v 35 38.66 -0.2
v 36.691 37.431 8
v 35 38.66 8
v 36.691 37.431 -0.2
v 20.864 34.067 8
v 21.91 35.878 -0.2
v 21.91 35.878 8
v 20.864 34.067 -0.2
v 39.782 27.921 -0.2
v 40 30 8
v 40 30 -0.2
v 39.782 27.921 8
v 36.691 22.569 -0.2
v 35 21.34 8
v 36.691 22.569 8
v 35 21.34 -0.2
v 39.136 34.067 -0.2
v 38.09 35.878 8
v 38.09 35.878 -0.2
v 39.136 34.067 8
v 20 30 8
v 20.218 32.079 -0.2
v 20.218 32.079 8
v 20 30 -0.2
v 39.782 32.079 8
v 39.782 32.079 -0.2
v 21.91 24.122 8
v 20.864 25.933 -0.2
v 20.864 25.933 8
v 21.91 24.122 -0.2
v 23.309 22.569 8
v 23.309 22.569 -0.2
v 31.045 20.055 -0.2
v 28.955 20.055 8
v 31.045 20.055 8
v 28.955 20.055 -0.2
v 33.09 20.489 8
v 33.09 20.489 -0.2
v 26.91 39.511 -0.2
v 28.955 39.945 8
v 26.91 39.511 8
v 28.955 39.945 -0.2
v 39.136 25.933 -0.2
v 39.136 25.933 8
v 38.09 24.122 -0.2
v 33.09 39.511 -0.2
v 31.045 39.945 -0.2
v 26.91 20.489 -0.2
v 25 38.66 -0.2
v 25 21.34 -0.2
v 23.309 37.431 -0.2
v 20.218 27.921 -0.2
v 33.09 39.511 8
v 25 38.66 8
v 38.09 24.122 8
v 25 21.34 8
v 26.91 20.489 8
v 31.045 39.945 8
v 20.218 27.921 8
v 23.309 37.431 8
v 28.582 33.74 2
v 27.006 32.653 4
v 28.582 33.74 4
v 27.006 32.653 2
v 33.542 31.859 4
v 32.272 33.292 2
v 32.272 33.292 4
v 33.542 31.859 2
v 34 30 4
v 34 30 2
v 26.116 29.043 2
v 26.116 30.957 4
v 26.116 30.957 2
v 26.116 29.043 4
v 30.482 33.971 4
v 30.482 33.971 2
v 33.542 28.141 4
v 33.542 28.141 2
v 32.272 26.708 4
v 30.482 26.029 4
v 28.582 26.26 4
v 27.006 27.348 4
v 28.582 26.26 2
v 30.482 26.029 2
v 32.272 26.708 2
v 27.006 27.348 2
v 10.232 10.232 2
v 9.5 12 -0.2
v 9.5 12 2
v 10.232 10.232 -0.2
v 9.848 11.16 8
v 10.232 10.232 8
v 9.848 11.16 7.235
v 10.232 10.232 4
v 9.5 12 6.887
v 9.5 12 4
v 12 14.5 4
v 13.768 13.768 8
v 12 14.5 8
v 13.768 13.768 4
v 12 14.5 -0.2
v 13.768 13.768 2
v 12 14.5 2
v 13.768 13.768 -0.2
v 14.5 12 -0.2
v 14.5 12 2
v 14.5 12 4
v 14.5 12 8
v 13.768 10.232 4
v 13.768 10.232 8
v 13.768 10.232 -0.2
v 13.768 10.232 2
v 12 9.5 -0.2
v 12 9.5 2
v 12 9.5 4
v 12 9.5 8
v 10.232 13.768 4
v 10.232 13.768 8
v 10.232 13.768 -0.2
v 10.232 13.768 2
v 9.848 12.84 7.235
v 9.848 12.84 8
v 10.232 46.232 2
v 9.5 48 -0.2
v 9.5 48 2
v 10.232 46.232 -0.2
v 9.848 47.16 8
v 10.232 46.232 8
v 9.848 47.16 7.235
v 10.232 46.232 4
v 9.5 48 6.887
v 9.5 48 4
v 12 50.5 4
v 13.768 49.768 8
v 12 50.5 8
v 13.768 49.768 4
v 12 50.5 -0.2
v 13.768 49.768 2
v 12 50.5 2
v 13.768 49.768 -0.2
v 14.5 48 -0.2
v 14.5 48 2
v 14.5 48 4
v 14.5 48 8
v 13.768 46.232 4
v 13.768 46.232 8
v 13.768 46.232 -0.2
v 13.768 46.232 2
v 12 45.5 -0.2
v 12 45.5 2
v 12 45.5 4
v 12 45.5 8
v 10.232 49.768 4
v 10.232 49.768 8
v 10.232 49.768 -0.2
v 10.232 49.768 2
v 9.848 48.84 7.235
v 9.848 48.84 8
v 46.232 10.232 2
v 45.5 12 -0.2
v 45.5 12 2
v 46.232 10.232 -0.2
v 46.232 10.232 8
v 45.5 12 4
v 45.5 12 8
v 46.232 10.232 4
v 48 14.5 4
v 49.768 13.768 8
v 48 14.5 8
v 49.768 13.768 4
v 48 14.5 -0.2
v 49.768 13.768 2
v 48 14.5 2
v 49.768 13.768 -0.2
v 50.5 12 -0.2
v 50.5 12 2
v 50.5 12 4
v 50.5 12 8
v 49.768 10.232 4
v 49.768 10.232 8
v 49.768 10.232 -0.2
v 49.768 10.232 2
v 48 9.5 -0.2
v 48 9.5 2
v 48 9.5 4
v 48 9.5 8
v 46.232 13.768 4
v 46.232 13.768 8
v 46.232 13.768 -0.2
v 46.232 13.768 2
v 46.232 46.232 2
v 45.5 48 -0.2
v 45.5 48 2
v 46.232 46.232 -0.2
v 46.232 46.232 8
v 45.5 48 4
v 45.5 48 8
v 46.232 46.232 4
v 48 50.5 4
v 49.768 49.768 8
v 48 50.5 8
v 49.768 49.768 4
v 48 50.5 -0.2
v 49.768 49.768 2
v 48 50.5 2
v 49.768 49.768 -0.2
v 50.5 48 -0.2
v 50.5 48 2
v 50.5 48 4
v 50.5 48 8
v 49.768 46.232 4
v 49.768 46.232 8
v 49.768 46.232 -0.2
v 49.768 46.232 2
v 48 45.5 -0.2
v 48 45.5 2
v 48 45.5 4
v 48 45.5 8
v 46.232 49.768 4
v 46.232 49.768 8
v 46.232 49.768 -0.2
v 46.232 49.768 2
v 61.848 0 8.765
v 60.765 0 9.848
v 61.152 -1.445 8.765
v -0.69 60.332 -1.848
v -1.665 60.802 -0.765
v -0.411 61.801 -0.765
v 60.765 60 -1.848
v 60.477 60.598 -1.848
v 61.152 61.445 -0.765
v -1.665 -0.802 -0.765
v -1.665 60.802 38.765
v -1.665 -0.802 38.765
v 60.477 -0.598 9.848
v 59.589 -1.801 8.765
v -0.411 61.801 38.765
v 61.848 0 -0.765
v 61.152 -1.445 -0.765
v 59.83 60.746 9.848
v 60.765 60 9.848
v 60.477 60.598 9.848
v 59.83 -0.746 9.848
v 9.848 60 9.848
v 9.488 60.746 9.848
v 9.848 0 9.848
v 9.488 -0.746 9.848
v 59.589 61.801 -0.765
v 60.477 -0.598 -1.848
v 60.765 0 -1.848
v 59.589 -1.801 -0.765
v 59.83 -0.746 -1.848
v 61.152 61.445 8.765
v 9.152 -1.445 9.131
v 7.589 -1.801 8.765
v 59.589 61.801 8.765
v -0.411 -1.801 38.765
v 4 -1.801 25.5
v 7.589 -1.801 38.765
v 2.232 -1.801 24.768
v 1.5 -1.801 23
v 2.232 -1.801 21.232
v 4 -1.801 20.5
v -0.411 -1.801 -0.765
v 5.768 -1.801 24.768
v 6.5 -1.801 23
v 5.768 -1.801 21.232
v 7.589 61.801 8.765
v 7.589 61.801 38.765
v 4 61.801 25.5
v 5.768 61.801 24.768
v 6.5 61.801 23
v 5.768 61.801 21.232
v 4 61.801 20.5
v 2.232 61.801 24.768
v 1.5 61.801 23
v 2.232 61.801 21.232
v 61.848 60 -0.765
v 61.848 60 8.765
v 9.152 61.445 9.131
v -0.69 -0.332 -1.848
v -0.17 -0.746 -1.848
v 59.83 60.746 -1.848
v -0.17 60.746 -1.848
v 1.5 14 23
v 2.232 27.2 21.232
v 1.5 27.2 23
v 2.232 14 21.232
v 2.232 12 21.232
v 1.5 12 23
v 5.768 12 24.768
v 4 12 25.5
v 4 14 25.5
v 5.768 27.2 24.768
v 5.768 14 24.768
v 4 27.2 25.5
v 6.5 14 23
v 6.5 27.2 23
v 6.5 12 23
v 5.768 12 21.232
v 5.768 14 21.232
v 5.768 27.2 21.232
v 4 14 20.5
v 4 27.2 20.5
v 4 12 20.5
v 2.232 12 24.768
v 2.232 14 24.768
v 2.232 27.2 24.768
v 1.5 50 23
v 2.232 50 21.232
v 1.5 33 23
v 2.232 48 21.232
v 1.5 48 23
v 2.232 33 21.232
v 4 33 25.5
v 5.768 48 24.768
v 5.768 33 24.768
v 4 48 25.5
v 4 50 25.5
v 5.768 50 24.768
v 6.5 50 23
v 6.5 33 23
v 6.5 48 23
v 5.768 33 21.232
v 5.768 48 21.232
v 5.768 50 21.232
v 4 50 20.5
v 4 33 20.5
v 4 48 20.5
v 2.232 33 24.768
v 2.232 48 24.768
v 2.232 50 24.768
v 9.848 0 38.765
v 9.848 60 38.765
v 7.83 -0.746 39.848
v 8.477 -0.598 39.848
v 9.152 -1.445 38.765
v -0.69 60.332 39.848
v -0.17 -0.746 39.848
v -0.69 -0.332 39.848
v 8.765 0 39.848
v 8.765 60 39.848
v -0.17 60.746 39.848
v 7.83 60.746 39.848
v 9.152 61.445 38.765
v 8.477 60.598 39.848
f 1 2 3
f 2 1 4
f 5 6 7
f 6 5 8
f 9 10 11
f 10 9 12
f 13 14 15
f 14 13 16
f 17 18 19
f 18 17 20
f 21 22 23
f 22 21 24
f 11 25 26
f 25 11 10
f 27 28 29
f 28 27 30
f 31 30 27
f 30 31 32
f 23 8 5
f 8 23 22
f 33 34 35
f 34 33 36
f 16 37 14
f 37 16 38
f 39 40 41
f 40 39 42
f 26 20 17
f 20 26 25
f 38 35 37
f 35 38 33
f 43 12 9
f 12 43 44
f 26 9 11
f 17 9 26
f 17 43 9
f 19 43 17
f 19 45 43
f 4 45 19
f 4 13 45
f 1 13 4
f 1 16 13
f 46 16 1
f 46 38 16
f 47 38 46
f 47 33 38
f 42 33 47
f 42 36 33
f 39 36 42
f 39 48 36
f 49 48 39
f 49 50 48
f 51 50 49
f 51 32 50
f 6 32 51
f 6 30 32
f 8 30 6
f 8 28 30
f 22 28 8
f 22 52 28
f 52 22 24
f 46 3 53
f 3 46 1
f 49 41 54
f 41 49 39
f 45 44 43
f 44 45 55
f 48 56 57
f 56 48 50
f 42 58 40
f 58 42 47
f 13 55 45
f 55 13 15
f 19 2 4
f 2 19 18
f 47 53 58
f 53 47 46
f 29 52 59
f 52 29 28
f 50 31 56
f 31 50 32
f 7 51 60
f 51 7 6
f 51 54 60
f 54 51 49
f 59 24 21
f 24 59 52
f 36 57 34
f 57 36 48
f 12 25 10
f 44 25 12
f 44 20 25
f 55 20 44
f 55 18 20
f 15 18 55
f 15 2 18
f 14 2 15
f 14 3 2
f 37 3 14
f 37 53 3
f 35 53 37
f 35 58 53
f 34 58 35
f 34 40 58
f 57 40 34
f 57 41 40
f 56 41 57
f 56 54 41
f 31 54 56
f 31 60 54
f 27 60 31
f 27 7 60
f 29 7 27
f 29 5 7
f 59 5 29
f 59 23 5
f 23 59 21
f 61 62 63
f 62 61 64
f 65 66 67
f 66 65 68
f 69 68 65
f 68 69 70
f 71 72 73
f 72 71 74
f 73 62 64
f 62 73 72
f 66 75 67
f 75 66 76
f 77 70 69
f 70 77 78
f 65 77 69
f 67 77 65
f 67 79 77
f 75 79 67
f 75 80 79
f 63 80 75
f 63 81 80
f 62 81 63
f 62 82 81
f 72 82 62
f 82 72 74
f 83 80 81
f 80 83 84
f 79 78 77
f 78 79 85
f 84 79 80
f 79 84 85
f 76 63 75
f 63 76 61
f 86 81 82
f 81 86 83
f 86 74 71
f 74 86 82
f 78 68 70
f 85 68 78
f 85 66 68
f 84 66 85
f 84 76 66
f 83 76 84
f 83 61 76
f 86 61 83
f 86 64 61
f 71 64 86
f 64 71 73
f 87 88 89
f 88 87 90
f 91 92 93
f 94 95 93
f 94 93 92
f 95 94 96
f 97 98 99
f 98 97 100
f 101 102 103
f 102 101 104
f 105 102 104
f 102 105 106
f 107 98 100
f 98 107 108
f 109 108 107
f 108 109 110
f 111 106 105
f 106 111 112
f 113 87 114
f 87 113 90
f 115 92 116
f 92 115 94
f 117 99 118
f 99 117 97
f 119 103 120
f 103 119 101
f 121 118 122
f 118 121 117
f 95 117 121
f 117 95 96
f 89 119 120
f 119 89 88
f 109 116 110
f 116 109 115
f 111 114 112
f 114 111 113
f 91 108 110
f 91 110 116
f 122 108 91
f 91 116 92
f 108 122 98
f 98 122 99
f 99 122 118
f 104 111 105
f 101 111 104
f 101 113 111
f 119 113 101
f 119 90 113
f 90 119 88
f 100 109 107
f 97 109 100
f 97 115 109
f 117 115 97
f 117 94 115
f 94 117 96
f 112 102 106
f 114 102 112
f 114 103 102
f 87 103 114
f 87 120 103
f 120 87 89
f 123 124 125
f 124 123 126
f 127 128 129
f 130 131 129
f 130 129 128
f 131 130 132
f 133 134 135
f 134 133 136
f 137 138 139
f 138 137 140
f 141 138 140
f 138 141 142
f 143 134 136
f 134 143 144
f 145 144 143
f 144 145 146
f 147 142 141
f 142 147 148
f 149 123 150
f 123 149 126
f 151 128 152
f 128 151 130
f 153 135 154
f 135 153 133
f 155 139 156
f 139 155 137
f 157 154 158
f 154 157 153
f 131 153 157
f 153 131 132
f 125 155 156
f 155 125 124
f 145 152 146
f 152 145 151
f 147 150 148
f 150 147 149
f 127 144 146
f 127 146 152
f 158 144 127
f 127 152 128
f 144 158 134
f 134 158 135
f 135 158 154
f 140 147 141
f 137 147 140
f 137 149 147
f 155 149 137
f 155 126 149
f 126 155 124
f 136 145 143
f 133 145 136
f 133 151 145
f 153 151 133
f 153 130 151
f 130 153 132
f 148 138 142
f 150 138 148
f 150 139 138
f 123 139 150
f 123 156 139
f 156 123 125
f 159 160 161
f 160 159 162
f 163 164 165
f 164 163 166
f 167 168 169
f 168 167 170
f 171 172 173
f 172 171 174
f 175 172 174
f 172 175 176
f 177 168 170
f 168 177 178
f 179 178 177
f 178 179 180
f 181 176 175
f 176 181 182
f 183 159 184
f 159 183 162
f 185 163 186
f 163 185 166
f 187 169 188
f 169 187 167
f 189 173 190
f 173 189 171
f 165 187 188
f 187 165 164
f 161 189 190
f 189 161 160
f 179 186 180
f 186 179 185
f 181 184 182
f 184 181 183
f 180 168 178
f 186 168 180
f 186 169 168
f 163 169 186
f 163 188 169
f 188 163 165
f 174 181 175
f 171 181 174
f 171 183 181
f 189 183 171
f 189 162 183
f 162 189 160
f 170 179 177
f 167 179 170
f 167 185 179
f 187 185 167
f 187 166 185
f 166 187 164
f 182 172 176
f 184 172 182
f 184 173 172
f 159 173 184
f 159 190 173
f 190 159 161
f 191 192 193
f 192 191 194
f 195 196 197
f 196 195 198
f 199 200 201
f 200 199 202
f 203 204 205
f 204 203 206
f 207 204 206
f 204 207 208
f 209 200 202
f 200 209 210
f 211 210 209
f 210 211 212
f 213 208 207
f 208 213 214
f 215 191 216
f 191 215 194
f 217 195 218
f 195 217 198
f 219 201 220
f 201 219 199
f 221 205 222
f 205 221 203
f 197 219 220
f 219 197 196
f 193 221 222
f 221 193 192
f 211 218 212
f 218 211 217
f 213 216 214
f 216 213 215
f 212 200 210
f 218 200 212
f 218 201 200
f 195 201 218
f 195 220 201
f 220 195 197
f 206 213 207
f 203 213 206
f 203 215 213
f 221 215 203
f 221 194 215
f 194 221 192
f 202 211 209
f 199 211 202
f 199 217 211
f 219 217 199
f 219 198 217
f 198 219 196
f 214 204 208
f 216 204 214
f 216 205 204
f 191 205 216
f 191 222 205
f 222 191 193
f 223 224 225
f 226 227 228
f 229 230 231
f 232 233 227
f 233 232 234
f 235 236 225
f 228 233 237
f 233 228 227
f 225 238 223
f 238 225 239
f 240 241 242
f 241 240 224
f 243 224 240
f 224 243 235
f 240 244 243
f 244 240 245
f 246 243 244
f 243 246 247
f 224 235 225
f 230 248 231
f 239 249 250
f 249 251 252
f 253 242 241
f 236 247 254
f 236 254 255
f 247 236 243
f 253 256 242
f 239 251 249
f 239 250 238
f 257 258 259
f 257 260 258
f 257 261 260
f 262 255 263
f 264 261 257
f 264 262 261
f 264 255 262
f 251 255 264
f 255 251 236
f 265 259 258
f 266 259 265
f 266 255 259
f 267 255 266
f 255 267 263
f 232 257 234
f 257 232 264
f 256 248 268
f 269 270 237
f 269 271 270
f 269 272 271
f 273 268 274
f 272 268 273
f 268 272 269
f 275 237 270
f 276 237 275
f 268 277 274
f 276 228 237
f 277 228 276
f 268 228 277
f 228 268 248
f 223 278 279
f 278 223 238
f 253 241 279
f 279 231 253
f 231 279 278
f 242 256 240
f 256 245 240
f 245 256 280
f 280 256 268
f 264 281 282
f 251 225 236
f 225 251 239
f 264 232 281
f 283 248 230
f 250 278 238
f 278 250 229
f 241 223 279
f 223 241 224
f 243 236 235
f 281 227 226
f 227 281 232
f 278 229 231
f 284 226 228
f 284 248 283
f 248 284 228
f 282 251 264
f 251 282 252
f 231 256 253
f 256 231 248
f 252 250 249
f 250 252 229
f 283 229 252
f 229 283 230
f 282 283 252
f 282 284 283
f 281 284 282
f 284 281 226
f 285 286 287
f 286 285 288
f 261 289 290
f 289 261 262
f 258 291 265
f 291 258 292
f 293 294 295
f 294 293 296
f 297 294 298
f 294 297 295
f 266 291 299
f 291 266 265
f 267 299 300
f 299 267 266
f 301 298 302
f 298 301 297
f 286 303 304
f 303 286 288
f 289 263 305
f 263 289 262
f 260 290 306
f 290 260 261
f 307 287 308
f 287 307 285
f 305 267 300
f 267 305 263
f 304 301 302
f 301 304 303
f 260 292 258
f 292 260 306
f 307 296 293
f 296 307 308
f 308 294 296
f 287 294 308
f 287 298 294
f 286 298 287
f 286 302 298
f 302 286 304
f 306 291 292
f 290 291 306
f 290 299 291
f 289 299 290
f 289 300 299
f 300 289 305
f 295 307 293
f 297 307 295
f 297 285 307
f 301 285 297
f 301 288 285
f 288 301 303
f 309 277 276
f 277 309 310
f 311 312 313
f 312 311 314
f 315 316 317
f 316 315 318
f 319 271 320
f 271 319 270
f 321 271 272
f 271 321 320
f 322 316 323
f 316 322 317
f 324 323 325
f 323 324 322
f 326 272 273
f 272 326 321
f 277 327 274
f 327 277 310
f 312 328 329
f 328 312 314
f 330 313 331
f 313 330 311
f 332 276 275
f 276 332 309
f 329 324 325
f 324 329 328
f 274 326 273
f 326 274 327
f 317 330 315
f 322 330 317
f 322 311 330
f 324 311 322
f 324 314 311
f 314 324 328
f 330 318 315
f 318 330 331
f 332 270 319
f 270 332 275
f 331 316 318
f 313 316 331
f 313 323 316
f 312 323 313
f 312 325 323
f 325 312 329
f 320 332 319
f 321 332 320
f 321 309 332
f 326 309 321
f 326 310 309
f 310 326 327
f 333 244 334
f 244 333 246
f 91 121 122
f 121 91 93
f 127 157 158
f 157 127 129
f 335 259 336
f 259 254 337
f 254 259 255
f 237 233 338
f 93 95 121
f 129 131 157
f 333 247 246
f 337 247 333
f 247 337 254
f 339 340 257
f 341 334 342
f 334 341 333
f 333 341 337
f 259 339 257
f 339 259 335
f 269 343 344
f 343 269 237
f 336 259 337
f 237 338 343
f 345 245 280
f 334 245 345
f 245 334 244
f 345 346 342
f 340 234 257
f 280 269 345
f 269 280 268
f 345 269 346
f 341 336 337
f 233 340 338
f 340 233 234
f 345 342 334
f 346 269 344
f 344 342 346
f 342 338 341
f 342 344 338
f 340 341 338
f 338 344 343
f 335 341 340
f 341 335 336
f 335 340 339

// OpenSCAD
// Parameters
l_bracket_length = 60; // Length of the L-bracket base
l_bracket_width = 60;  // Width of the L-bracket base
l_bracket_height = 30; // Height of the vertical section
thickness = 8;         // Thickness of the bracket
hole_diameter = 20;    // Enlarged diameter of the central hole
mounting_hole_diameter = 5; // Diameter of the smaller mounting holes
mounting_hole_offset = 12;  // Distance from the edges to the mounting holes
recess_depth = 2;      // Depth of the recessed holes
recess_diameter = 8;   // Diameter of the recessed holes
edge_radius = 2;       // Radius for rounded edges

// Function to create a hole
module create_hole(diameter, depth) {
    translate([0, 0, -0.1]) // Slightly offset to ensure through cut
        cylinder(d=diameter, h=depth + 0.2, center=true);
}

// Function to create a recessed hole
module create_recessed_hole(diameter, depth, recess_diameter, recess_depth) {
    difference() {
        create_hole(diameter, depth);
        translate([0, 0, -recess_depth / 2])
            cylinder(d=recess_diameter, h=recess_depth, center=true);
    }
}

// Main L-bracket
module l_bracket() {
    // Base section
    difference() {
        minkowski() {
            cube([l_bracket_length, l_bracket_width, thickness], center=false);
            sphere(r=edge_radius);
        }
        // Central hole (aligned and enlarged)
        translate([l_bracket_length / 2, l_bracket_width / 2, thickness / 2])
            create_recessed_hole(hole_diameter, thickness, recess_diameter, recess_depth);
        // Mounting holes (symmetrical placement)
        for (x = [-1, 1])
            for (y = [-1, 1])
                translate([
                    l_bracket_length / 2 + x * (l_bracket_length / 2 - mounting_hole_offset),
                    l_bracket_width / 2 + y * (l_bracket_width / 2 - mounting_hole_offset),
                    thickness / 2
                ])
                    create_recessed_hole(mounting_hole_diameter, thickness, recess_diameter, recess_depth);
    }

    // Vertical section
    translate([0, 0, thickness]) {
        difference() {
            minkowski() {
                cube([thickness, l_bracket_width, l_bracket_height], center=false);
                sphere(r=edge_radius);
            }
            // Mounting holes on the vertical section (aligned and symmetrical)
            for (y = [-1, 1])
                translate([
                    thickness / 2,
                    l_bracket_width / 2 + y * (l_bracket_width / 2 - mounting_hole_offset),
                    l_bracket_height / 2
                ])
                    rotate([90, 0, 0])
                        create_recessed_hole(mounting_hole_diameter, l_bracket_height, recess_diameter, recess_depth);
        }
    }
}

// Render the L-bracket
l_bracket();
